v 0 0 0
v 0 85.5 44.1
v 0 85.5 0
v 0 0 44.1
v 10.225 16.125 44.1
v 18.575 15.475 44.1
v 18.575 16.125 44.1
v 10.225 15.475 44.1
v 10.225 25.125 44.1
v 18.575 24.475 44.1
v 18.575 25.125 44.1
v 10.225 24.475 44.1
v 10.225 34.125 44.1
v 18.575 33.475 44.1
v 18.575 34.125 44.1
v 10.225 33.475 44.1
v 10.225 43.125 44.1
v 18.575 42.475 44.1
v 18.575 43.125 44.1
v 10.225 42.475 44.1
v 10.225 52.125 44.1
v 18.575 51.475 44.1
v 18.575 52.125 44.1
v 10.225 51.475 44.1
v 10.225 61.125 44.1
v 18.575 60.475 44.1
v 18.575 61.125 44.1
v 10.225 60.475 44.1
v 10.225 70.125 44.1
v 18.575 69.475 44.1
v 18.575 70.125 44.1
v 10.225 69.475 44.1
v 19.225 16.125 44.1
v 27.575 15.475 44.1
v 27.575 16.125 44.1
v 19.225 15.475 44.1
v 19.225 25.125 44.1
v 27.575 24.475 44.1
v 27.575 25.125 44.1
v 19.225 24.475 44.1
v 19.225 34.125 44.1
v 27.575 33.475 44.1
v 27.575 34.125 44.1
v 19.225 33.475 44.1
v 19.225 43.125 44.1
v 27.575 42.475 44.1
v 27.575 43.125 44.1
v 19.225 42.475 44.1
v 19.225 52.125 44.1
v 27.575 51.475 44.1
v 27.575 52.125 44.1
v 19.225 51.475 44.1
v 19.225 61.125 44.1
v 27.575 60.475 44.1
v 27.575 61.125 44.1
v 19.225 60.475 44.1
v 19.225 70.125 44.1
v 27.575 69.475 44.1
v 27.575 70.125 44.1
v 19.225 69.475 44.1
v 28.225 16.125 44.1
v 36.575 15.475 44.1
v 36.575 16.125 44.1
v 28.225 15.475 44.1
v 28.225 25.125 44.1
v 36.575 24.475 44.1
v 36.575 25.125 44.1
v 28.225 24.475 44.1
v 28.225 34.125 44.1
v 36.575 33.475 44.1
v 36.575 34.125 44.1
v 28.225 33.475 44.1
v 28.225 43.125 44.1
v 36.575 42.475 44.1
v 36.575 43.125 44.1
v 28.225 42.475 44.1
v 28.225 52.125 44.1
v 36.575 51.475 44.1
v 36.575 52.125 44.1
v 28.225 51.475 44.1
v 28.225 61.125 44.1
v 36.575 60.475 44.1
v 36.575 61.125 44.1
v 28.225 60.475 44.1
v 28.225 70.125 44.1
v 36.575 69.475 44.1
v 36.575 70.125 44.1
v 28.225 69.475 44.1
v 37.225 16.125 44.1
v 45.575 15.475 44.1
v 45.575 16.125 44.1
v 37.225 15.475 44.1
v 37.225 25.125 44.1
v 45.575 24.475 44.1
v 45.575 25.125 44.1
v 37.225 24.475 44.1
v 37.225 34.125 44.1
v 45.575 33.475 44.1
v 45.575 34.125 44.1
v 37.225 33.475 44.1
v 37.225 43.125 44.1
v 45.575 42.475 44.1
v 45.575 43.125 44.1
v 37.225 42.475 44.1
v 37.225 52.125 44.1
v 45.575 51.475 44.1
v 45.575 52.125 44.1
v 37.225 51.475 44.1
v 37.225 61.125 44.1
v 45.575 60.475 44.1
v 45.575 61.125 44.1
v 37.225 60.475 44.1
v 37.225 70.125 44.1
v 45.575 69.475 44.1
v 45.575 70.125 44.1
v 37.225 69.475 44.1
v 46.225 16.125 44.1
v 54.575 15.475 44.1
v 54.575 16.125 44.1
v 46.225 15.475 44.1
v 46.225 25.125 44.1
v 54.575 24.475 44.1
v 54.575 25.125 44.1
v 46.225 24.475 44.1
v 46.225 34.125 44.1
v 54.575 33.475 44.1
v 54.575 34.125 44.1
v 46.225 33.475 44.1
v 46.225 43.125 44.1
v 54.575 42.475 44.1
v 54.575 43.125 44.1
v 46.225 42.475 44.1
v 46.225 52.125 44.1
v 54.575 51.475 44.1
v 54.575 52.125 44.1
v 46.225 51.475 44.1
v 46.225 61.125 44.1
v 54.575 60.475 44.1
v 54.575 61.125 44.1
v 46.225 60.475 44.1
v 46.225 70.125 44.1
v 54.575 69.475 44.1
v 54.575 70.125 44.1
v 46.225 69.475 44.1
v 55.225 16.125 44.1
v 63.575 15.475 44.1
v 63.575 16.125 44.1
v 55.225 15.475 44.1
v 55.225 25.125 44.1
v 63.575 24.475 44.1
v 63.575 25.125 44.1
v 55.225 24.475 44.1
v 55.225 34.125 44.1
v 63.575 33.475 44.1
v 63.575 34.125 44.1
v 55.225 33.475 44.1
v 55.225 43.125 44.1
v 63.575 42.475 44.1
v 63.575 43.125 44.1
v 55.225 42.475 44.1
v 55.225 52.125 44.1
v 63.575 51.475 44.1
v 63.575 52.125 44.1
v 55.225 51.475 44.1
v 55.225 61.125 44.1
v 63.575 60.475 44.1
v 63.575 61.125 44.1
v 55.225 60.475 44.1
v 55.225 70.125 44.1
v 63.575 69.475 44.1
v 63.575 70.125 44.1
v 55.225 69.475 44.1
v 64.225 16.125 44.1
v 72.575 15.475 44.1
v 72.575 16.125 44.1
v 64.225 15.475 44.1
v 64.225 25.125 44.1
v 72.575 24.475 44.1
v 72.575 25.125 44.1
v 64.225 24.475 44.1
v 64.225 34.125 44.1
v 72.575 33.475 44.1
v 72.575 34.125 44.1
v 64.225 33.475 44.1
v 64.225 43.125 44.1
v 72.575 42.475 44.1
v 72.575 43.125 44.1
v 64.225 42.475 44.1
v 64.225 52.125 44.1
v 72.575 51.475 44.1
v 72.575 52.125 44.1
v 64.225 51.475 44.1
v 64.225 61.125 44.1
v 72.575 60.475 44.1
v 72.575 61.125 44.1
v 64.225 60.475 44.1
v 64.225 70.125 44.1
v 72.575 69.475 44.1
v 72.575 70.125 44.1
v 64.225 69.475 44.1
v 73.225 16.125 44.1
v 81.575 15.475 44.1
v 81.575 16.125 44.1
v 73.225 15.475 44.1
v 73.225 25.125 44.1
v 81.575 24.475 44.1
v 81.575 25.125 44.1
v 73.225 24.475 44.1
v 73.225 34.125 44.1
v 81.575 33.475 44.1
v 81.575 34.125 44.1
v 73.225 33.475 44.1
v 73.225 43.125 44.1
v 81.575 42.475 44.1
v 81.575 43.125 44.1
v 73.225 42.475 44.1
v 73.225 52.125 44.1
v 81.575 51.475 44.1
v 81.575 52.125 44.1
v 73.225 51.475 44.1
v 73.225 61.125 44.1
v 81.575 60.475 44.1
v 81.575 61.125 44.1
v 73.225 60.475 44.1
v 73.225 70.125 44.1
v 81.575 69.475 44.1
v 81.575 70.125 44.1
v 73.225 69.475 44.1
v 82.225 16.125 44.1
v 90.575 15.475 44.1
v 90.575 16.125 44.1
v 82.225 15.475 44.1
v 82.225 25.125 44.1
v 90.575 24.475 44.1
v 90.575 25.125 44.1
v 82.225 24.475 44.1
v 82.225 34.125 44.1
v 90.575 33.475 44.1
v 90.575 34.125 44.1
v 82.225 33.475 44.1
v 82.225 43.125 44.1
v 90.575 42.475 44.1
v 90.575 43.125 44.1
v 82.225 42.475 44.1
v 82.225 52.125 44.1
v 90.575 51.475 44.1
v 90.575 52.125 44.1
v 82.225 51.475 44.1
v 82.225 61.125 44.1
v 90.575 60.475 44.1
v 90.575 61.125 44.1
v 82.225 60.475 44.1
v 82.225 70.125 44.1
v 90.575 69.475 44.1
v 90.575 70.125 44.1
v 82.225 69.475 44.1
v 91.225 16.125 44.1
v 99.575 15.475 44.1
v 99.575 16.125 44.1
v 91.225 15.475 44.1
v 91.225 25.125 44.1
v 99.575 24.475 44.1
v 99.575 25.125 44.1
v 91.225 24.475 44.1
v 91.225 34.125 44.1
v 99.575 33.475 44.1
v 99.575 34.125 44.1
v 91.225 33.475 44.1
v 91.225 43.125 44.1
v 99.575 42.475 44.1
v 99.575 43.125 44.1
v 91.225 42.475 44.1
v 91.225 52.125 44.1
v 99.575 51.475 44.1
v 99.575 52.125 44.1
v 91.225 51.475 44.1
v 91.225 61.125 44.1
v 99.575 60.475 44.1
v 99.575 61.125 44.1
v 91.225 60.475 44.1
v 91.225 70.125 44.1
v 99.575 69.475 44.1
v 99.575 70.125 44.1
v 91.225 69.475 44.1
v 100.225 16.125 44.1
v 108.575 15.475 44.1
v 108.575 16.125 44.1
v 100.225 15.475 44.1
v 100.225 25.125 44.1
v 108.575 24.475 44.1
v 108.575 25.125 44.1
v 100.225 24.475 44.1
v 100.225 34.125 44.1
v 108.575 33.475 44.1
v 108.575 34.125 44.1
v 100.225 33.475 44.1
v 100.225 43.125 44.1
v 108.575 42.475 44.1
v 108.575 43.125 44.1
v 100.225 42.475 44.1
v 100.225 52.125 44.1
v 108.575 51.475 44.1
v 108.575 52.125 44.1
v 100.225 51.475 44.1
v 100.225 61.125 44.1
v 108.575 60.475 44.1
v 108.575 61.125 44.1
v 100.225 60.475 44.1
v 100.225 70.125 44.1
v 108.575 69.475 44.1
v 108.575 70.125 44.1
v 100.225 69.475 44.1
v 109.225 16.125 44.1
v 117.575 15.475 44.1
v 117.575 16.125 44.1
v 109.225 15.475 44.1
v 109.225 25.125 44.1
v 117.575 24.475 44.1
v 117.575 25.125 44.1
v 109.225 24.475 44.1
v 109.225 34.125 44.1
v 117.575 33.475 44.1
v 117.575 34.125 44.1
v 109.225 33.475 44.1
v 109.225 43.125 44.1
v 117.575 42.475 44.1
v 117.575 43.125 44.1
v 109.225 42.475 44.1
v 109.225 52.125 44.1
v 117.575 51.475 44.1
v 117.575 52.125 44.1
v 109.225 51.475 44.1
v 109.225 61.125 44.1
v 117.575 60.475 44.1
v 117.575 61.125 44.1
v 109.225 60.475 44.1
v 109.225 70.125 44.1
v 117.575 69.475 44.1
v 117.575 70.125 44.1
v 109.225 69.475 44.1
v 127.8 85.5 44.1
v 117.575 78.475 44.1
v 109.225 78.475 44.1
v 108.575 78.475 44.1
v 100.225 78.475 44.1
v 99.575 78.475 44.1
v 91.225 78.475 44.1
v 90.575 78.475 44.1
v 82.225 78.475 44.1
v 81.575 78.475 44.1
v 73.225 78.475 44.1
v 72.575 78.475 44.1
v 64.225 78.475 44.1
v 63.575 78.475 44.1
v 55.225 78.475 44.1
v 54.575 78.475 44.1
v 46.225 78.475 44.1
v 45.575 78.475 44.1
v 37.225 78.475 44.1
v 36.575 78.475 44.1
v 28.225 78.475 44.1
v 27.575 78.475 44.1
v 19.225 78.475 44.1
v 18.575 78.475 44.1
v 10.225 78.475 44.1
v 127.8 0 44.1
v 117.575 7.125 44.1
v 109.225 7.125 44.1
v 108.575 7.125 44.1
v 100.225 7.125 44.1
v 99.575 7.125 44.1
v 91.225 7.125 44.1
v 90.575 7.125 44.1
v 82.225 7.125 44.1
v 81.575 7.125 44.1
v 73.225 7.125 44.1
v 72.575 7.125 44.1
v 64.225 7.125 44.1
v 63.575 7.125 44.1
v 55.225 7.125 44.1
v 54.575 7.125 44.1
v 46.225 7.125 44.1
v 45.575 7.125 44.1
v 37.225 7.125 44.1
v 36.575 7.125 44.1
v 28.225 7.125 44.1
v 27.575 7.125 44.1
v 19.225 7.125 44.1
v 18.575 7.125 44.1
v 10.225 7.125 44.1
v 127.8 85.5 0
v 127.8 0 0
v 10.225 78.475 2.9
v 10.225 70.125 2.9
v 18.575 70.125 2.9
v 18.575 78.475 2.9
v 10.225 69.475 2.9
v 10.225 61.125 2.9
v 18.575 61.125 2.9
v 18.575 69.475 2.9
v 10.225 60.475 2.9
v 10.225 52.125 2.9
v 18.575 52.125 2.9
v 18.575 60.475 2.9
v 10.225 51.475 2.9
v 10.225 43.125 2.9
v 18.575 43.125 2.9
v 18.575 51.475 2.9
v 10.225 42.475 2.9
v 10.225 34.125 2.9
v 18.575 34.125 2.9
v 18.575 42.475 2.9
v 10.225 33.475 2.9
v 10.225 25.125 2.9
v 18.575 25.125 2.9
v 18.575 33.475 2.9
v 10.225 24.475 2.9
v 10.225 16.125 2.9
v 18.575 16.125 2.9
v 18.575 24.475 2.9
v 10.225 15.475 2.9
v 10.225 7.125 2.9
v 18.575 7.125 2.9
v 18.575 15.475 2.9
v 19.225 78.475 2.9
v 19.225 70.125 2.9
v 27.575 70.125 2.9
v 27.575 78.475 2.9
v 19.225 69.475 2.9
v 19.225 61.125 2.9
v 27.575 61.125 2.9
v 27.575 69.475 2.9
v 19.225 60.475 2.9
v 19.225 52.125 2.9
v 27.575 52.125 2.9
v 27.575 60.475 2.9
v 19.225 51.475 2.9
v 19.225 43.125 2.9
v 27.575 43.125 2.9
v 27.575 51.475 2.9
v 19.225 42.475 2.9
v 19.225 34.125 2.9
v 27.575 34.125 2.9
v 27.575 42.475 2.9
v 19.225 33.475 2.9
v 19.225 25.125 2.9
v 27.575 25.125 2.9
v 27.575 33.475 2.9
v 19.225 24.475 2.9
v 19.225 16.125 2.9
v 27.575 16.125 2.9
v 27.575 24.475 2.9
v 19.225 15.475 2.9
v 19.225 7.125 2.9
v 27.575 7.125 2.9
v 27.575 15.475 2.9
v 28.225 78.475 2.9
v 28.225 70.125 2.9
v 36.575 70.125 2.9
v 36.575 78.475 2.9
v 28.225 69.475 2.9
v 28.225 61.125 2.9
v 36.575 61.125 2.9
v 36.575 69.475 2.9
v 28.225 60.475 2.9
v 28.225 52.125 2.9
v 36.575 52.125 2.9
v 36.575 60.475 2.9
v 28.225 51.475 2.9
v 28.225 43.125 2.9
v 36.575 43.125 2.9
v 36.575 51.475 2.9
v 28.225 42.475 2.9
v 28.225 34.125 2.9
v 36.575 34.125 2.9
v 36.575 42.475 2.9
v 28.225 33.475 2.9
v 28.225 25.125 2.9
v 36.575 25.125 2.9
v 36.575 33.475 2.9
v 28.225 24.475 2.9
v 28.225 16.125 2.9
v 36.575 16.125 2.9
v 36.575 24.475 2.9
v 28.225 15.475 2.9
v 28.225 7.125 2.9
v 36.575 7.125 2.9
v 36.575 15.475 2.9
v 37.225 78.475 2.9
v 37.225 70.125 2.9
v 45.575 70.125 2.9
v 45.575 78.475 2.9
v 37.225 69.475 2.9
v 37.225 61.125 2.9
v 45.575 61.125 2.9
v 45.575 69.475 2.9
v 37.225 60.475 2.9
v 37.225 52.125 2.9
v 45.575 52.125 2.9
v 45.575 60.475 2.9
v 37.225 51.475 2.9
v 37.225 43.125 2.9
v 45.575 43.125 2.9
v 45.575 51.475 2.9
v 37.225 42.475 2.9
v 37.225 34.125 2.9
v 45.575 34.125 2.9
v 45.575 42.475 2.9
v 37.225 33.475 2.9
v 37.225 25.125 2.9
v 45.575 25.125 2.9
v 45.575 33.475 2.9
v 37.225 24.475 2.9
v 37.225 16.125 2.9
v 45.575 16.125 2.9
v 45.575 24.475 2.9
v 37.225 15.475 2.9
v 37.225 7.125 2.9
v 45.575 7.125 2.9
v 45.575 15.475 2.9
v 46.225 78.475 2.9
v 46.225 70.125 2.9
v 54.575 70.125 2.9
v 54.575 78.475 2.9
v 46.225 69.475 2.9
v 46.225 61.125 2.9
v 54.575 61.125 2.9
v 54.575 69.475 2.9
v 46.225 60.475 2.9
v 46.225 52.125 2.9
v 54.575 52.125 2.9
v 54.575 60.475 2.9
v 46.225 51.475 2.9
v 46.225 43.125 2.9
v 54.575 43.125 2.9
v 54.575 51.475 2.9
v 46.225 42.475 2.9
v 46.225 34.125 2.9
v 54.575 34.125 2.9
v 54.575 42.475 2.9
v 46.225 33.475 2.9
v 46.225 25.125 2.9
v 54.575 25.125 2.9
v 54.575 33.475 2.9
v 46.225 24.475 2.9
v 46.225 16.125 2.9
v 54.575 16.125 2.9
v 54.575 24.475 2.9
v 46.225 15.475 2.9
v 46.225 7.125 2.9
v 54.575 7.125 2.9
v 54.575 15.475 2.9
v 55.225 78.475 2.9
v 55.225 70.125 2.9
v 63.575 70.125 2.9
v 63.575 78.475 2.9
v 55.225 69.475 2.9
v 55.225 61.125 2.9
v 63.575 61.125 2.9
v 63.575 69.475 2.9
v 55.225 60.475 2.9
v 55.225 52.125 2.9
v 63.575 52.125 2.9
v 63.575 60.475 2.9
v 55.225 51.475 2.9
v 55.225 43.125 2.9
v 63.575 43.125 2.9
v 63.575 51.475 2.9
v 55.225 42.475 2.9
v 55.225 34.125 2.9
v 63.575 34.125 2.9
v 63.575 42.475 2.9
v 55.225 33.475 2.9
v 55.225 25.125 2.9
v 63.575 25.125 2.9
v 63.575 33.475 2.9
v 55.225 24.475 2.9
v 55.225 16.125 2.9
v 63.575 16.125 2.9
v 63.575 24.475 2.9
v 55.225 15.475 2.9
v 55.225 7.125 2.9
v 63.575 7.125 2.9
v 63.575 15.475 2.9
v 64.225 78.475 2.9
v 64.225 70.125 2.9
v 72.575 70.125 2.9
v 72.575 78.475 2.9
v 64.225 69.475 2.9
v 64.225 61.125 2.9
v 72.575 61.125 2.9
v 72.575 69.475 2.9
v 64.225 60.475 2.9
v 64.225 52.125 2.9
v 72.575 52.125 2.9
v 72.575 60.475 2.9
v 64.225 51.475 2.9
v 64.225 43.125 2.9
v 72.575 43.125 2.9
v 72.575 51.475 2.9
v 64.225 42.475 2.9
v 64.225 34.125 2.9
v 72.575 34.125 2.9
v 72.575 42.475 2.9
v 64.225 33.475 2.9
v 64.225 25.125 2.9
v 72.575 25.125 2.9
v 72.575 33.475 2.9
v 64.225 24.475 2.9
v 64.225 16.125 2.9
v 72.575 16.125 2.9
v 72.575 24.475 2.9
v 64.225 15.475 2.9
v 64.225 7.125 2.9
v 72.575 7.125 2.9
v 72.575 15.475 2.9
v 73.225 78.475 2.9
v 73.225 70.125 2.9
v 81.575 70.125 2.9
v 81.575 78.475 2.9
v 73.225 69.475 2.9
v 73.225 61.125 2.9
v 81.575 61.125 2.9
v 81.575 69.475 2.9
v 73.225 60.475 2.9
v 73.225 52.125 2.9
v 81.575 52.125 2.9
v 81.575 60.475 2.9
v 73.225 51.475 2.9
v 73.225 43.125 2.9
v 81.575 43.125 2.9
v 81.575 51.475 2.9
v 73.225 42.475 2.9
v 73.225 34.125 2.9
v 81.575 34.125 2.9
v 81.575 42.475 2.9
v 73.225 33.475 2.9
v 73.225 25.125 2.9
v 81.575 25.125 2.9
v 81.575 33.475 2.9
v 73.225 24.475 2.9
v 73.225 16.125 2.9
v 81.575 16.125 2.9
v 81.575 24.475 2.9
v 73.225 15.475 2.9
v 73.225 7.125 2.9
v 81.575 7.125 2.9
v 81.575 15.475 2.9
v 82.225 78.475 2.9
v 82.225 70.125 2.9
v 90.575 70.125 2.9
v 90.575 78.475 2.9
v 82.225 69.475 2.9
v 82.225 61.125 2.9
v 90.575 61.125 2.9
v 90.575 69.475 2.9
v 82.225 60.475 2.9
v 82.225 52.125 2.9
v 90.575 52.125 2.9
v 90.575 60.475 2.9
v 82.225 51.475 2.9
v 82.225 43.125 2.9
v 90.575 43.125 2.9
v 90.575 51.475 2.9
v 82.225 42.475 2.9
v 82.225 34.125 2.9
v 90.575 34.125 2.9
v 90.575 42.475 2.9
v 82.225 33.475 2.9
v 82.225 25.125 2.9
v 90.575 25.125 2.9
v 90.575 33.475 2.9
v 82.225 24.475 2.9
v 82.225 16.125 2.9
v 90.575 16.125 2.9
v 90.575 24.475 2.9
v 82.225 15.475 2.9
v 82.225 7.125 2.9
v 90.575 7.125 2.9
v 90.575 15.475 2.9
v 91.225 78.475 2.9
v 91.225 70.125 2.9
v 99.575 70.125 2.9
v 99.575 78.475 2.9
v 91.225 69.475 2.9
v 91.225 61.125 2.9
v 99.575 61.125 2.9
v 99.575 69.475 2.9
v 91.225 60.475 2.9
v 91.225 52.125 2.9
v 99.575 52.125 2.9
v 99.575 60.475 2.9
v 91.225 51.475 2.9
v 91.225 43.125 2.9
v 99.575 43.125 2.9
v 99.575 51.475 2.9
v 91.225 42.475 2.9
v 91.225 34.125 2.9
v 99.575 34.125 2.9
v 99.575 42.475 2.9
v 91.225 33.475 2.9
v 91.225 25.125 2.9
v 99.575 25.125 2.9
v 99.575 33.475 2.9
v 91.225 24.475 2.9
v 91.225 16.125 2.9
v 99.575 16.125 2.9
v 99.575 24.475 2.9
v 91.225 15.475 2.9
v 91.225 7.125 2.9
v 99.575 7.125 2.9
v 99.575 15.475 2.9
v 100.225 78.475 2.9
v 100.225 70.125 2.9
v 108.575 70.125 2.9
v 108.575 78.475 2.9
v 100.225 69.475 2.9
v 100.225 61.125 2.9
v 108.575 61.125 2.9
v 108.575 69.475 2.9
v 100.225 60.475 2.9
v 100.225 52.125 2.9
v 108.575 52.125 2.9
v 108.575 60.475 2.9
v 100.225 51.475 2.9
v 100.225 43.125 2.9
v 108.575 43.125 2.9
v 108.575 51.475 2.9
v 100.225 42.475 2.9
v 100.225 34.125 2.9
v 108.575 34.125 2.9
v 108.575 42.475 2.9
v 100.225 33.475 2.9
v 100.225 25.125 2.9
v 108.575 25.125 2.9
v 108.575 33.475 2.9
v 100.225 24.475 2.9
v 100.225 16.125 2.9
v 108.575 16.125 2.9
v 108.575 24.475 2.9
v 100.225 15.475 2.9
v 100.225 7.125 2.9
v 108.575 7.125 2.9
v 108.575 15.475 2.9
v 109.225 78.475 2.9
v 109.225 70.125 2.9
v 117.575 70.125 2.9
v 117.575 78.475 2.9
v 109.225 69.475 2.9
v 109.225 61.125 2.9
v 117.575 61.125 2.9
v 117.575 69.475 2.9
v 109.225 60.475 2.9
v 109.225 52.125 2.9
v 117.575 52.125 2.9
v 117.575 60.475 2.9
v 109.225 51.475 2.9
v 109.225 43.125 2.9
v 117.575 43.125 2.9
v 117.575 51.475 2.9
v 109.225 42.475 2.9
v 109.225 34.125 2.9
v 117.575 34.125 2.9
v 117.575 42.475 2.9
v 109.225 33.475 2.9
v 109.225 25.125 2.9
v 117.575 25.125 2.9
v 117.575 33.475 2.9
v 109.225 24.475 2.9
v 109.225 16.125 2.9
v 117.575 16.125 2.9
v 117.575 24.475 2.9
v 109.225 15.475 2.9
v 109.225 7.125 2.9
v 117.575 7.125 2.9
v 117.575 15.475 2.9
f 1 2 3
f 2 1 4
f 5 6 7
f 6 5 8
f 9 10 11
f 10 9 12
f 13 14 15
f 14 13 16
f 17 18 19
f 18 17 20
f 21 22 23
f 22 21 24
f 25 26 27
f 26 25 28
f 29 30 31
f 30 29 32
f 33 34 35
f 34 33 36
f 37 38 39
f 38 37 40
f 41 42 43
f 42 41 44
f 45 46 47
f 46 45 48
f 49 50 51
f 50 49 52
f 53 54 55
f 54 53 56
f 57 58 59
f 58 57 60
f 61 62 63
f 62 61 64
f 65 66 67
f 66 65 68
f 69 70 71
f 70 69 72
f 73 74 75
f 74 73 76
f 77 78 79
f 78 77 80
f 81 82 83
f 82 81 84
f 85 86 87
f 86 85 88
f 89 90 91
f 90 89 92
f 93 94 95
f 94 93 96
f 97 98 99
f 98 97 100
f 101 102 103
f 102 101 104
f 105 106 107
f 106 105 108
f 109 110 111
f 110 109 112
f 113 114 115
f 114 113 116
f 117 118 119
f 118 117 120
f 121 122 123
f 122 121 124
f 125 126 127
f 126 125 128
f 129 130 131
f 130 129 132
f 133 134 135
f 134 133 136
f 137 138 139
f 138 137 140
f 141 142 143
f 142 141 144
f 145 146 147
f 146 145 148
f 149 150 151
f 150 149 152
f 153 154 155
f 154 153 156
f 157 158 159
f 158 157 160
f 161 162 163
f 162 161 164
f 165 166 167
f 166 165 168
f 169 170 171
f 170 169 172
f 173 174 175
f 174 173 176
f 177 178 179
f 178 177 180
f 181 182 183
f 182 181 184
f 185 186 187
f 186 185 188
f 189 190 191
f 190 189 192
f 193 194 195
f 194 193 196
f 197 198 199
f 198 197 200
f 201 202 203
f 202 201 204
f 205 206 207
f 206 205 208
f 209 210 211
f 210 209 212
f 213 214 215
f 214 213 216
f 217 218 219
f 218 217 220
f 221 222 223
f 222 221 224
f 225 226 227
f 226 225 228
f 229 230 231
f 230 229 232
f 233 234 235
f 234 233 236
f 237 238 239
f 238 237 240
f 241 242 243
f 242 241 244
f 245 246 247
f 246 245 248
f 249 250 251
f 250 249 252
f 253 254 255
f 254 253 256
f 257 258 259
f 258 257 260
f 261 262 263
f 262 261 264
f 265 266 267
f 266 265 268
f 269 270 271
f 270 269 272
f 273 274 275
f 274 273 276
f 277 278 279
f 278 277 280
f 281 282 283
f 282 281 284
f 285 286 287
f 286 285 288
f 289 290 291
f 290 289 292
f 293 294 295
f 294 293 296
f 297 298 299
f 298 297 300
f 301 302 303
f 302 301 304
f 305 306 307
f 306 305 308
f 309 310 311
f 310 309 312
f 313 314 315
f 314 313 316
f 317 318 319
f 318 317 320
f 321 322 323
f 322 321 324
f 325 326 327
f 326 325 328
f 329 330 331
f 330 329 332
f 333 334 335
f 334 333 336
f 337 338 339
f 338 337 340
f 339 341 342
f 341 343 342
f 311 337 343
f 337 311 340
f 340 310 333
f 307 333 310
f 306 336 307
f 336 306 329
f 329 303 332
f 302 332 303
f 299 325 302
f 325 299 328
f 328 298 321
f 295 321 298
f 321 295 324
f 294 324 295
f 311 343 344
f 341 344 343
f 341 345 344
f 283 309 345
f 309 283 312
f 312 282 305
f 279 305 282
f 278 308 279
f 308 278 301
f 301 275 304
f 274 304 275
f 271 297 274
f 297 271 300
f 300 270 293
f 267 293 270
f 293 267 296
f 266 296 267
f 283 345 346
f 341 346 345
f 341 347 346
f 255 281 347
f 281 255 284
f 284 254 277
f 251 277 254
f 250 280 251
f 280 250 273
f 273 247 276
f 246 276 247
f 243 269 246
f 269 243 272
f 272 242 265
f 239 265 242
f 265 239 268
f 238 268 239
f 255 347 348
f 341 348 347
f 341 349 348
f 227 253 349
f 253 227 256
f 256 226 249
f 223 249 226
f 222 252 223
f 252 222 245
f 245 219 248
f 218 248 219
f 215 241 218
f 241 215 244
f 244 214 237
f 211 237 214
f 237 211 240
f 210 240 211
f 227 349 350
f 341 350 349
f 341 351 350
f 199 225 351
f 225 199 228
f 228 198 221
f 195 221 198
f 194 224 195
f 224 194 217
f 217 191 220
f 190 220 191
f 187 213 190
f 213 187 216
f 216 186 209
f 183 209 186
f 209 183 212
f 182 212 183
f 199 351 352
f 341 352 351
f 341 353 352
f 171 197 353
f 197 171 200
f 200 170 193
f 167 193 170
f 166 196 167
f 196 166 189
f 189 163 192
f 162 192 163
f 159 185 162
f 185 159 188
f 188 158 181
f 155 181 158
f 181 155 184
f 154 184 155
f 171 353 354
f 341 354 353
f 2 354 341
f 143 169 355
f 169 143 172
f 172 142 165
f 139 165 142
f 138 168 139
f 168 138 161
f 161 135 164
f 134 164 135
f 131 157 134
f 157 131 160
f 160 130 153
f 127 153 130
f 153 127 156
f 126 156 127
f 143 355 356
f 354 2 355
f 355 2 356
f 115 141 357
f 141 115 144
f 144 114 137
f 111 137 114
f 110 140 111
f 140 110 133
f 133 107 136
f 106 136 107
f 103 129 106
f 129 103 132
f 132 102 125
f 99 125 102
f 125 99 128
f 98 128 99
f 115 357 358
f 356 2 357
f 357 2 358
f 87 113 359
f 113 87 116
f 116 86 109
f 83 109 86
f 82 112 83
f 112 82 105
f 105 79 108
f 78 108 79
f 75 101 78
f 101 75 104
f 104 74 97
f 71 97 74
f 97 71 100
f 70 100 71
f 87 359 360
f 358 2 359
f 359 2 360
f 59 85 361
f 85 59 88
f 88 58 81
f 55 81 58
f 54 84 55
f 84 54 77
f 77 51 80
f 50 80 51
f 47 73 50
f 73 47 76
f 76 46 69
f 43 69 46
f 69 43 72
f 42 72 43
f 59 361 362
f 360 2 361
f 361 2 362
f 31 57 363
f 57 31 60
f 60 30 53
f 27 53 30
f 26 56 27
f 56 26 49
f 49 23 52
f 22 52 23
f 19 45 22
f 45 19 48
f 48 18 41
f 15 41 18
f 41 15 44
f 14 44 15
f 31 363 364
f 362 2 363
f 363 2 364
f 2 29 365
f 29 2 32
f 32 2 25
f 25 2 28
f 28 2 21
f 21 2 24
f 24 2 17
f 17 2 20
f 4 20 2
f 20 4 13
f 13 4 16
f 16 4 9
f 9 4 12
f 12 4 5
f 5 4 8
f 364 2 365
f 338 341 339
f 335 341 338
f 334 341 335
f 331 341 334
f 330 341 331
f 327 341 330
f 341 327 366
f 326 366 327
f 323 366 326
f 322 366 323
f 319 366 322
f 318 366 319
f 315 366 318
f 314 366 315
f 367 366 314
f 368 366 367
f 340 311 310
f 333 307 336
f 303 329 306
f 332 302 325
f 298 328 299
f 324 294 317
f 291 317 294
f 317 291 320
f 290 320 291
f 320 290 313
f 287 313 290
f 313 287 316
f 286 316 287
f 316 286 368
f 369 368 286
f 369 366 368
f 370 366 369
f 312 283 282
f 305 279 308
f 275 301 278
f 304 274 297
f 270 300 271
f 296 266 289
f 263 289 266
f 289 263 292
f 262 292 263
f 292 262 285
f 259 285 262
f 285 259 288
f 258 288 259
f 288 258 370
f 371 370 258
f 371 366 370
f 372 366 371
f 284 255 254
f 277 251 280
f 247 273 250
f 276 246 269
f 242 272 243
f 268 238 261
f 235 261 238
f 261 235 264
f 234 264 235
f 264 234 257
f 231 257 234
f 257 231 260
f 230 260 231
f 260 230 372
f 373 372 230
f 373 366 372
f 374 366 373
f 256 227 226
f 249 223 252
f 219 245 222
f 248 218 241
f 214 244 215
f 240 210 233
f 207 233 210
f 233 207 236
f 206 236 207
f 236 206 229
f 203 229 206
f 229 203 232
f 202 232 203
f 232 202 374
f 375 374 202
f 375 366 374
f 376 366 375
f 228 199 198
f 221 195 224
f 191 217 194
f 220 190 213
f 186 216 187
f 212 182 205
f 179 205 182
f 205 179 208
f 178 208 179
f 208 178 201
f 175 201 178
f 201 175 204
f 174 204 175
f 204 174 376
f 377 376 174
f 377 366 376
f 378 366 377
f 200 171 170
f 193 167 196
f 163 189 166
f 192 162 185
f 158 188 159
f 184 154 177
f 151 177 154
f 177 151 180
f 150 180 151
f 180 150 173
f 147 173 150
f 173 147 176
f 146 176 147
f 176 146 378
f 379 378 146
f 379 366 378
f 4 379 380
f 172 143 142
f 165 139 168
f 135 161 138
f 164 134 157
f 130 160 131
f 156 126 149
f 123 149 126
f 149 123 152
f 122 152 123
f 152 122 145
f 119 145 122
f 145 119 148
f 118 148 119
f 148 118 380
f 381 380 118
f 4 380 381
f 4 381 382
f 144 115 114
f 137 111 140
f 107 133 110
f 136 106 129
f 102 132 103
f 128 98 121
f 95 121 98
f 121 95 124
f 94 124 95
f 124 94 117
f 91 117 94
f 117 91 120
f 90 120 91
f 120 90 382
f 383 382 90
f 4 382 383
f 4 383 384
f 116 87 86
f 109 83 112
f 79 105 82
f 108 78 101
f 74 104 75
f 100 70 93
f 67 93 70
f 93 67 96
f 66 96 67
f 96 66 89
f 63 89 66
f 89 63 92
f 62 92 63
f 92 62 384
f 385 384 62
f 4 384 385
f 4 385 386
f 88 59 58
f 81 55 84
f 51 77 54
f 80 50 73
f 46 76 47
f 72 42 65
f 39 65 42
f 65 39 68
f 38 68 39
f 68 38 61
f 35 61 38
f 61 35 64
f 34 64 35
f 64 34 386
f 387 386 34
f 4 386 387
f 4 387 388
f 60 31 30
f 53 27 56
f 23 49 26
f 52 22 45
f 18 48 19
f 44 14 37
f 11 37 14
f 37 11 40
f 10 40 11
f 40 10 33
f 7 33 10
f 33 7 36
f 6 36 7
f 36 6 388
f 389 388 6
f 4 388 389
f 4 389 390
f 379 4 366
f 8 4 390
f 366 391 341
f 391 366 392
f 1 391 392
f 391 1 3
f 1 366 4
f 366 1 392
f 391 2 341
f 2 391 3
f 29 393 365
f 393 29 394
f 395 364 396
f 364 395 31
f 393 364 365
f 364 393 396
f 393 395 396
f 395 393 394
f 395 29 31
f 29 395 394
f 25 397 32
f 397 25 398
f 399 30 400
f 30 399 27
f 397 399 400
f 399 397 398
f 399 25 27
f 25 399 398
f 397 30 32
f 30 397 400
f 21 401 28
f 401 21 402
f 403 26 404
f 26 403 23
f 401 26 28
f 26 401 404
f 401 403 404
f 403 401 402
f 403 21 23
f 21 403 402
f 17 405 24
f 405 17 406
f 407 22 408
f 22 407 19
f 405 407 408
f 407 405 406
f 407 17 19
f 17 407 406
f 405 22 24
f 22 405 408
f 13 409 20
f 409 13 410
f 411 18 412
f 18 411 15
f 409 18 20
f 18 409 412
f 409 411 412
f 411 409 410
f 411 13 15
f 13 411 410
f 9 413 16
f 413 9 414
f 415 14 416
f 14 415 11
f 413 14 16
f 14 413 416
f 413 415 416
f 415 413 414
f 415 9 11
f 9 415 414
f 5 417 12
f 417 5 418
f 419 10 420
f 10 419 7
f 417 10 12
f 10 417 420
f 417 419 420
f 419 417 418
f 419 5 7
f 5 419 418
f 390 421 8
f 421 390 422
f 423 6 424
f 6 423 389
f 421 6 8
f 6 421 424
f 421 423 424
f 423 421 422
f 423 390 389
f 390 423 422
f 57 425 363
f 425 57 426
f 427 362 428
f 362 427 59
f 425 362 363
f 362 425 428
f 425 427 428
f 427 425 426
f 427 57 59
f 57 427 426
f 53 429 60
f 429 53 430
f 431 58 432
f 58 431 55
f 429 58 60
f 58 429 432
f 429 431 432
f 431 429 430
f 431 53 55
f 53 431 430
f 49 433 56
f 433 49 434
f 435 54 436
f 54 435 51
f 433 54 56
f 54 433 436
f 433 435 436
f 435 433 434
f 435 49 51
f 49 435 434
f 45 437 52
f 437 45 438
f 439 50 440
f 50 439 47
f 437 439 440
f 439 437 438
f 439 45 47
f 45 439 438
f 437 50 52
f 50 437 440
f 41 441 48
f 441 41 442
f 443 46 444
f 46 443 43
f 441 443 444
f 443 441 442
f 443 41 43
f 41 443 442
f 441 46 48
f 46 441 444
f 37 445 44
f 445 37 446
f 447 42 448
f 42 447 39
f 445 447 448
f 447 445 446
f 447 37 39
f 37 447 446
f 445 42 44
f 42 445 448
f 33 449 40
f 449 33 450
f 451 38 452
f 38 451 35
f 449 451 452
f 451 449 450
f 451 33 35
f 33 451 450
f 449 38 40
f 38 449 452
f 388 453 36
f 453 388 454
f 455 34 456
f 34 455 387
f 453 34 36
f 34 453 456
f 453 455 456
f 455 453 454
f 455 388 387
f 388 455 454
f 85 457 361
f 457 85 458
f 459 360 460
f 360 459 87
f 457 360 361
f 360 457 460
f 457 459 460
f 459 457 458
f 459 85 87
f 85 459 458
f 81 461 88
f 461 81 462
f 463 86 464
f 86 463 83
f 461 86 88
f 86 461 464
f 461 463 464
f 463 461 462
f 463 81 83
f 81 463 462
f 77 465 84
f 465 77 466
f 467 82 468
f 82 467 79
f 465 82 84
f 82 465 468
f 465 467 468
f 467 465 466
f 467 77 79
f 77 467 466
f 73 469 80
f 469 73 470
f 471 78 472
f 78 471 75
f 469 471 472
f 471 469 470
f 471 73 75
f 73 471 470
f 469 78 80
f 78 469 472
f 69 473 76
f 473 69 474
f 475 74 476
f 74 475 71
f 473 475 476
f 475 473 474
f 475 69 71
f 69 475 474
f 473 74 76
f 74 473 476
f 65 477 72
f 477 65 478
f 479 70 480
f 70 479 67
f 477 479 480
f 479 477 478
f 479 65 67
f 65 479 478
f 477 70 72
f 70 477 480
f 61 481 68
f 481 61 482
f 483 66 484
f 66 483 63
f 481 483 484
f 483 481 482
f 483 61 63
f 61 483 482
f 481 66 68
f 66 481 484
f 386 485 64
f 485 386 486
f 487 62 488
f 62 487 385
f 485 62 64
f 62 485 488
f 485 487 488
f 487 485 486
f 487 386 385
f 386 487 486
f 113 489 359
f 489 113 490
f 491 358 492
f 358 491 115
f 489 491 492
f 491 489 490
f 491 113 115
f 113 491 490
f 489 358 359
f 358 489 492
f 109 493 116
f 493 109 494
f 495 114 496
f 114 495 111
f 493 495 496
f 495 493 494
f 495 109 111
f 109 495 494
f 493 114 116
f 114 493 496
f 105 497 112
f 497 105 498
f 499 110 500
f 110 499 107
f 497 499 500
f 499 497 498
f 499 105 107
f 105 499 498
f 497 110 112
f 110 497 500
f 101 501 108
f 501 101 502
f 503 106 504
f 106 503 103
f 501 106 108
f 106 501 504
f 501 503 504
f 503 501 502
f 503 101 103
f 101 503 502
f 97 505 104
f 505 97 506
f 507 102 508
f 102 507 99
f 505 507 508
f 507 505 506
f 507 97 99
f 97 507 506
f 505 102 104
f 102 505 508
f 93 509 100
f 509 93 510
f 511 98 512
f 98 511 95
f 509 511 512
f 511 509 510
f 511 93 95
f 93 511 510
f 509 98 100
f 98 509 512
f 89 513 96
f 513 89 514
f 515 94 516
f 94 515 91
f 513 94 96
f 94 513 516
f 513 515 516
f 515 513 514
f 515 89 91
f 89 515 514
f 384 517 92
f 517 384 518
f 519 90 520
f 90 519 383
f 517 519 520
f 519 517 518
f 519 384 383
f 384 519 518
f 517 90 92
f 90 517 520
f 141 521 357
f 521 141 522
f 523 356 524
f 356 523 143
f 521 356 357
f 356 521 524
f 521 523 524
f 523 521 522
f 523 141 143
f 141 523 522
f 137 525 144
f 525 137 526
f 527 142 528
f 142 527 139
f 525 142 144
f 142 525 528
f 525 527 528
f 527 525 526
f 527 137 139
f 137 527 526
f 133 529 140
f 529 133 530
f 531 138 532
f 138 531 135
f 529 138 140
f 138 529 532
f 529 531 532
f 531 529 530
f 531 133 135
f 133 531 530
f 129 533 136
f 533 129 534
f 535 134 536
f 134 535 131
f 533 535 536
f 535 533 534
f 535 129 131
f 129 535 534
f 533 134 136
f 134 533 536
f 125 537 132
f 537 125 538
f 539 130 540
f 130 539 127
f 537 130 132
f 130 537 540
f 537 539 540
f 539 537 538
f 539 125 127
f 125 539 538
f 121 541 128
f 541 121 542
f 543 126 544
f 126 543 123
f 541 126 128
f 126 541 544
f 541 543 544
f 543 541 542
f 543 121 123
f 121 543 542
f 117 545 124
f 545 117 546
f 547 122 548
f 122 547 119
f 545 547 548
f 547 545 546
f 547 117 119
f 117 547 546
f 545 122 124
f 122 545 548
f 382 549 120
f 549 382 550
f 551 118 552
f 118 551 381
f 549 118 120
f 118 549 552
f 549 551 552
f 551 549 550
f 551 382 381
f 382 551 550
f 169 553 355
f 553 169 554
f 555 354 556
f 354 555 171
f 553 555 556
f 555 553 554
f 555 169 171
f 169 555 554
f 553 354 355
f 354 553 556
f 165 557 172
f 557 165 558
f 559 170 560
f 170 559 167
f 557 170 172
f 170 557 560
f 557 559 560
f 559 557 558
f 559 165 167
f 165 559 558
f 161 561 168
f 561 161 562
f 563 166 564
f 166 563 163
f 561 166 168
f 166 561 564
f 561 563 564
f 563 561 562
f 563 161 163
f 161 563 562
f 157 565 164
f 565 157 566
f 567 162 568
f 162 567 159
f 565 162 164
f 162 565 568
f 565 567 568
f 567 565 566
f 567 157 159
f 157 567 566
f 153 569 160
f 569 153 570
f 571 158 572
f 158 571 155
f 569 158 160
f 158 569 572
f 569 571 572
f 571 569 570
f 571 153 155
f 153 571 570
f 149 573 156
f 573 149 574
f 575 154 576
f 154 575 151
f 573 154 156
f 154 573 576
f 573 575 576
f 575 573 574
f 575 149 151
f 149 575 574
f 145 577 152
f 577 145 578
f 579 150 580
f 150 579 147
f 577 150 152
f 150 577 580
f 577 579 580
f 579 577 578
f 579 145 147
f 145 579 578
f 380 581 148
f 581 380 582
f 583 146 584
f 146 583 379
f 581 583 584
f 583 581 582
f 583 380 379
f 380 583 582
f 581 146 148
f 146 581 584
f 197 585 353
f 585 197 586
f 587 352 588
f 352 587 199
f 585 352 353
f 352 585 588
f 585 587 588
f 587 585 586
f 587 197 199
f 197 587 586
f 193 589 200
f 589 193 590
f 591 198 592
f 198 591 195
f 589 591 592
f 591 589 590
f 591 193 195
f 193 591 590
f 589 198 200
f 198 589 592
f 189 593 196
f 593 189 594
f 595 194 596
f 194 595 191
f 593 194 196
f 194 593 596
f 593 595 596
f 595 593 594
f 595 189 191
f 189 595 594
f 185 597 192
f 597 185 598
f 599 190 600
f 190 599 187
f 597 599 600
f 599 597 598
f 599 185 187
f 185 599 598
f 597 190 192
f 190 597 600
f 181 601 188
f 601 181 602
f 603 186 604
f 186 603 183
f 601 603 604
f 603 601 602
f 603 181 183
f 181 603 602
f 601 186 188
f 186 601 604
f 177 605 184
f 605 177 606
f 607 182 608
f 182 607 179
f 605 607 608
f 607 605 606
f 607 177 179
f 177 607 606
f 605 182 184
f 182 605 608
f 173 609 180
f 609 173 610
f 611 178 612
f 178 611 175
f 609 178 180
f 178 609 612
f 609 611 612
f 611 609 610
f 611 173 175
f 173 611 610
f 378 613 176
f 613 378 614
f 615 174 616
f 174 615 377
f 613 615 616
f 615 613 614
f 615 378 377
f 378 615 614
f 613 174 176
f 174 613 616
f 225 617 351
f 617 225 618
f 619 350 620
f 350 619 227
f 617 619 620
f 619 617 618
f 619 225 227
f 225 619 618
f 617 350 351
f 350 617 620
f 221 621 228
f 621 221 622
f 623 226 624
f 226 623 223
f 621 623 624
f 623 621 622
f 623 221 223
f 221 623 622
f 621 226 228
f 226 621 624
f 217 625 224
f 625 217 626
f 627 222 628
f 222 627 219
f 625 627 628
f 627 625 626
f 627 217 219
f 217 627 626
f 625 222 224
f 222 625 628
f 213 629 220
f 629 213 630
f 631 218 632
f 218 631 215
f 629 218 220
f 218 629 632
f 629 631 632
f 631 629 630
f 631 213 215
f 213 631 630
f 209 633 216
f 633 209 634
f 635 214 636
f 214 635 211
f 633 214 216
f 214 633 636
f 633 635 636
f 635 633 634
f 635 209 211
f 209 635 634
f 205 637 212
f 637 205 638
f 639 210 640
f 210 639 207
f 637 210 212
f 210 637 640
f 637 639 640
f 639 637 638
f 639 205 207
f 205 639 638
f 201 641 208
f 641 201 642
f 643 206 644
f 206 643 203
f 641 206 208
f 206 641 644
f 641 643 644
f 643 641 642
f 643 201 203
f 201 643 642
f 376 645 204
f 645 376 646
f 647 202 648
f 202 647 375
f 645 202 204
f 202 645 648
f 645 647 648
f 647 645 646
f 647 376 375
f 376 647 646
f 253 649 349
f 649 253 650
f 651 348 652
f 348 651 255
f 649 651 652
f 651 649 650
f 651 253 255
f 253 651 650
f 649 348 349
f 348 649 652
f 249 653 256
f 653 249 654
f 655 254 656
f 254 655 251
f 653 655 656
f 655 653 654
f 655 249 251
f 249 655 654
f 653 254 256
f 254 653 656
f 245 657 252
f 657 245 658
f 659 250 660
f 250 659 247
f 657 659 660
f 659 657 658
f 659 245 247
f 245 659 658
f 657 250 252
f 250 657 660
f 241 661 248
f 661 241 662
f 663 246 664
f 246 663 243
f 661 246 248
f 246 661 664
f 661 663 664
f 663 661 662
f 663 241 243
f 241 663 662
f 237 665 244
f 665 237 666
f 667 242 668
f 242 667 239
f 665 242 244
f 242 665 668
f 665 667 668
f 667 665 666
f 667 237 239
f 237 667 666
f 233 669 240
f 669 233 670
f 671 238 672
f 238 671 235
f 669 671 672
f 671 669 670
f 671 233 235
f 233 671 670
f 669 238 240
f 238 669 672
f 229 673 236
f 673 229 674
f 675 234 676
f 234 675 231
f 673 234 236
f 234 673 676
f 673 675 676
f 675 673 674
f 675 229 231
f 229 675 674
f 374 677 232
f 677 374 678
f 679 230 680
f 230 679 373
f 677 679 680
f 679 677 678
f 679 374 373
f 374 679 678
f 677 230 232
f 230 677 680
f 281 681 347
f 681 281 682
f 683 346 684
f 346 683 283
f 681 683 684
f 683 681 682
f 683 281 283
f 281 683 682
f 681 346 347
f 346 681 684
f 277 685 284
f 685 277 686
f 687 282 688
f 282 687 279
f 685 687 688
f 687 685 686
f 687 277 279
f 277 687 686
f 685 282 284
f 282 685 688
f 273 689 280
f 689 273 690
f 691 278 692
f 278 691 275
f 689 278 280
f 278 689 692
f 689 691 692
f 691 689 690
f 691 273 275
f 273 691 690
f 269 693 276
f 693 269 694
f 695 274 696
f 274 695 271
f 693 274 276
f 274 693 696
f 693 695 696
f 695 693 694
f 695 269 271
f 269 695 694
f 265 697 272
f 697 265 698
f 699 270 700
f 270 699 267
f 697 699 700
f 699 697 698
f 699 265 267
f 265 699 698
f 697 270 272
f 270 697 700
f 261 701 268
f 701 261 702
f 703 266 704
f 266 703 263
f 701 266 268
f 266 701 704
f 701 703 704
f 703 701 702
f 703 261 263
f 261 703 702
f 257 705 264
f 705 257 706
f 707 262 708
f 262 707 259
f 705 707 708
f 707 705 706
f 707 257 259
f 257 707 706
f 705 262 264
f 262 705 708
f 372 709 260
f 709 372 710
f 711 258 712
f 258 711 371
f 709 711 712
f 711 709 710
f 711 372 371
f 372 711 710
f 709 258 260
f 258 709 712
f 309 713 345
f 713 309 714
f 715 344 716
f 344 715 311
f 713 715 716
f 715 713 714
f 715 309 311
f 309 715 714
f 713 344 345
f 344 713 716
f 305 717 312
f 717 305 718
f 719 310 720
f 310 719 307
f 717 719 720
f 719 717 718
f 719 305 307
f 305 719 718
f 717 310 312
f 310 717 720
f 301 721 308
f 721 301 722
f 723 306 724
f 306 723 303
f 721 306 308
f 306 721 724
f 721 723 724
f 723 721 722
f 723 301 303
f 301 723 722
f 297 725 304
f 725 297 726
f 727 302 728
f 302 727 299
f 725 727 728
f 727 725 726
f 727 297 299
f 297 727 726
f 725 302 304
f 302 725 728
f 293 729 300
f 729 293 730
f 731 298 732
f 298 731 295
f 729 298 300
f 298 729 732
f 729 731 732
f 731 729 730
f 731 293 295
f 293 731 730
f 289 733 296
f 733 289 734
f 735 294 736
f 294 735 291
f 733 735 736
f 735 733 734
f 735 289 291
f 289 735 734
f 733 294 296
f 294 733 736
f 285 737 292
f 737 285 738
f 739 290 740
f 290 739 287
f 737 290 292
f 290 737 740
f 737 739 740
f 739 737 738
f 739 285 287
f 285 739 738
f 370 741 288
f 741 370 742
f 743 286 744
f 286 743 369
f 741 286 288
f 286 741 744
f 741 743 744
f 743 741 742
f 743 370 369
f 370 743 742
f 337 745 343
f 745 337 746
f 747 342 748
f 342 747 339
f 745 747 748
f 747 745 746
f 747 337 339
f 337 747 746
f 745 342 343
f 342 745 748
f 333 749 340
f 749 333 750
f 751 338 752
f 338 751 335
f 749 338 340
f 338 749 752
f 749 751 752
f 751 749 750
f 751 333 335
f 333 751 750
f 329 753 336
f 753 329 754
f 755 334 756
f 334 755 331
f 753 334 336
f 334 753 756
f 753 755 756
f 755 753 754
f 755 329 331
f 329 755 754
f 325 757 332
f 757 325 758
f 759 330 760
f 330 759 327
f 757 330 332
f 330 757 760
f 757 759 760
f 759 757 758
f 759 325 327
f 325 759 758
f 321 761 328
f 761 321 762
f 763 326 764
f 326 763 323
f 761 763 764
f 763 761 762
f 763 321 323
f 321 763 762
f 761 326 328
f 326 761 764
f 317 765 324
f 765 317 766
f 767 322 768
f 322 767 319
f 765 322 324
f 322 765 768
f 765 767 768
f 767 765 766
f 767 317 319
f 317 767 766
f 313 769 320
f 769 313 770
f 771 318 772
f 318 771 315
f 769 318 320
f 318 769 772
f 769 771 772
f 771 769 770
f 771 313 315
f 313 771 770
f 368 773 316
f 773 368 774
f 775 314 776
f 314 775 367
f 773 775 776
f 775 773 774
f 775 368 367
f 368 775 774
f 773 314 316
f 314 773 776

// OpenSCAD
// Eppendorf 96 Well Plate 2 mL
// loadName: eppendorf_96_wellplate_2000ul
// Auto-generated by labware_to_stl.py from Opentrons V2 labware definition

$fn = 8;

difference() {
    // ── Labware body ──────────────────────────────────────────────
    cube([127.8000, 85.5000, 44.1000]);

    // ── Well cutouts ──────────────────────────────────────────────
    // Well A1
    translate([10.2250, 70.1250, 2.9000])
        cube([8.3500, 8.3500, 42.2000]);
    // Well B1
    translate([10.2250, 61.1250, 2.9000])
        cube([8.3500, 8.3500, 42.2000]);
    // Well C1
    translate([10.2250, 52.1250, 2.9000])
        cube([8.3500, 8.3500, 42.2000]);
    // Well D1
    translate([10.2250, 43.1250, 2.9000])
        cube([8.3500, 8.3500, 42.2000]);
    // Well E1
    translate([10.2250, 34.1250, 2.9000])
        cube([8.3500, 8.3500, 42.2000]);
    // Well F1
    translate([10.2250, 25.1250, 2.9000])
        cube([8.3500, 8.3500, 42.2000]);
    // Well G1
    translate([10.2250, 16.1250, 2.9000])
        cube([8.3500, 8.3500, 42.2000]);
    // Well H1
    translate([10.2250, 7.1250, 2.9000])
        cube([8.3500, 8.3500, 42.2000]);
    // Well A2
    translate([19.2250, 70.1250, 2.9000])
        cube([8.3500, 8.3500, 42.2000]);
    // Well B2
    translate([19.2250, 61.1250, 2.9000])
        cube([8.3500, 8.3500, 42.2000]);
    // Well C2
    translate([19.2250, 52.1250, 2.9000])
        cube([8.3500, 8.3500, 42.2000]);
    // Well D2
    translate([19.2250, 43.1250, 2.9000])
        cube([8.3500, 8.3500, 42.2000]);
    // Well E2
    translate([19.2250, 34.1250, 2.9000])
        cube([8.3500, 8.3500, 42.2000]);
    // Well F2
    translate([19.2250, 25.1250, 2.9000])
        cube([8.3500, 8.3500, 42.2000]);
    // Well G2
    translate([19.2250, 16.1250, 2.9000])
        cube([8.3500, 8.3500, 42.2000]);
    // Well H2
    translate([19.2250, 7.1250, 2.9000])
        cube([8.3500, 8.3500, 42.2000]);
    // Well A3
    translate([28.2250, 70.1250, 2.9000])
        cube([8.3500, 8.3500, 42.2000]);
    // Well B3
    translate([28.2250, 61.1250, 2.9000])
        cube([8.3500, 8.3500, 42.2000]);
    // Well C3
    translate([28.2250, 52.1250, 2.9000])
        cube([8.3500, 8.3500, 42.2000]);
    // Well D3
    translate([28.2250, 43.1250, 2.9000])
        cube([8.3500, 8.3500, 42.2000]);
    // Well E3
    translate([28.2250, 34.1250, 2.9000])
        cube([8.3500, 8.3500, 42.2000]);
    // Well F3
    translate([28.2250, 25.1250, 2.9000])
        cube([8.3500, 8.3500, 42.2000]);
    // Well G3
    translate([28.2250, 16.1250, 2.9000])
        cube([8.3500, 8.3500, 42.2000]);
    // Well H3
    translate([28.2250, 7.1250, 2.9000])
        cube([8.3500, 8.3500, 42.2000]);
    // Well A4
    translate([37.2250, 70.1250, 2.9000])
        cube([8.3500, 8.3500, 42.2000]);
    // Well B4
    translate([37.2250, 61.1250, 2.9000])
        cube([8.3500, 8.3500, 42.2000]);
    // Well C4
    translate([37.2250, 52.1250, 2.9000])
        cube([8.3500, 8.3500, 42.2000]);
    // Well D4
    translate([37.2250, 43.1250, 2.9000])
        cube([8.3500, 8.3500, 42.2000]);
    // Well E4
    translate([37.2250, 34.1250, 2.9000])
        cube([8.3500, 8.3500, 42.2000]);
    // Well F4
    translate([37.2250, 25.1250, 2.9000])
        cube([8.3500, 8.3500, 42.2000]);
    // Well G4
    translate([37.2250, 16.1250, 2.9000])
        cube([8.3500, 8.3500, 42.2000]);
    // Well H4
    translate([37.2250, 7.1250, 2.9000])
        cube([8.3500, 8.3500, 42.2000]);
    // Well A5
    translate([46.2250, 70.1250, 2.9000])
        cube([8.3500, 8.3500, 42.2000]);
    // Well B5
    translate([46.2250, 61.1250, 2.9000])
        cube([8.3500, 8.3500, 42.2000]);
    // Well C5
    translate([46.2250, 52.1250, 2.9000])
        cube([8.3500, 8.3500, 42.2000]);
    // Well D5
    translate([46.2250, 43.1250, 2.9000])
        cube([8.3500, 8.3500, 42.2000]);
    // Well E5
    translate([46.2250, 34.1250, 2.9000])
        cube([8.3500, 8.3500, 42.2000]);
    // Well F5
    translate([46.2250, 25.1250, 2.9000])
        cube([8.3500, 8.3500, 42.2000]);
    // Well G5
    translate([46.2250, 16.1250, 2.9000])
        cube([8.3500, 8.3500, 42.2000]);
    // Well H5
    translate([46.2250, 7.1250, 2.9000])
        cube([8.3500, 8.3500, 42.2000]);
    // Well A6
    translate([55.2250, 70.1250, 2.9000])
        cube([8.3500, 8.3500, 42.2000]);
    // Well B6
    translate([55.2250, 61.1250, 2.9000])
        cube([8.3500, 8.3500, 42.2000]);
    // Well C6
    translate([55.2250, 52.1250, 2.9000])
        cube([8.3500, 8.3500, 42.2000]);
    // Well D6
    translate([55.2250, 43.1250, 2.9000])
        cube([8.3500, 8.3500, 42.2000]);
    // Well E6
    translate([55.2250, 34.1250, 2.9000])
        cube([8.3500, 8.3500, 42.2000]);
    // Well F6
    translate([55.2250, 25.1250, 2.9000])
        cube([8.3500, 8.3500, 42.2000]);
    // Well G6
    translate([55.2250, 16.1250, 2.9000])
        cube([8.3500, 8.3500, 42.2000]);
    // Well H6
    translate([55.2250, 7.1250, 2.9000])
        cube([8.3500, 8.3500, 42.2000]);
    // Well A7
    translate([64.2250, 70.1250, 2.9000])
        cube([8.3500, 8.3500, 42.2000]);
    // Well B7
    translate([64.2250, 61.1250, 2.9000])
        cube([8.3500, 8.3500, 42.2000]);
    // Well C7
    translate([64.2250, 52.1250, 2.9000])
        cube([8.3500, 8.3500, 42.2000]);
    // Well D7
    translate([64.2250, 43.1250, 2.9000])
        cube([8.3500, 8.3500, 42.2000]);
    // Well E7
    translate([64.2250, 34.1250, 2.9000])
        cube([8.3500, 8.3500, 42.2000]);
    // Well F7
    translate([64.2250, 25.1250, 2.9000])
        cube([8.3500, 8.3500, 42.2000]);
    // Well G7
    translate([64.2250, 16.1250, 2.9000])
        cube([8.3500, 8.3500, 42.2000]);
    // Well H7
    translate([64.2250, 7.1250, 2.9000])
        cube([8.3500, 8.3500, 42.2000]);
    // Well A8
    translate([73.2250, 70.1250, 2.9000])
        cube([8.3500, 8.3500, 42.2000]);
    // Well B8
    translate([73.2250, 61.1250, 2.9000])
        cube([8.3500, 8.3500, 42.2000]);
    // Well C8
    translate([73.2250, 52.1250, 2.9000])
        cube([8.3500, 8.3500, 42.2000]);
    // Well D8
    translate([73.2250, 43.1250, 2.9000])
        cube([8.3500, 8.3500, 42.2000]);
    // Well E8
    translate([73.2250, 34.1250, 2.9000])
        cube([8.3500, 8.3500, 42.2000]);
    // Well F8
    translate([73.2250, 25.1250, 2.9000])
        cube([8.3500, 8.3500, 42.2000]);
    // Well G8
    translate([73.2250, 16.1250, 2.9000])
        cube([8.3500, 8.3500, 42.2000]);
    // Well H8
    translate([73.2250, 7.1250, 2.9000])
        cube([8.3500, 8.3500, 42.2000]);
    // Well A9
    translate([82.2250, 70.1250, 2.9000])
        cube([8.3500, 8.3500, 42.2000]);
    // Well B9
    translate([82.2250, 61.1250, 2.9000])
        cube([8.3500, 8.3500, 42.2000]);
    // Well C9
    translate([82.2250, 52.1250, 2.9000])
        cube([8.3500, 8.3500, 42.2000]);
    // Well D9
    translate([82.2250, 43.1250, 2.9000])
        cube([8.3500, 8.3500, 42.2000]);
    // Well E9
    translate([82.2250, 34.1250, 2.9000])
        cube([8.3500, 8.3500, 42.2000]);
    // Well F9
    translate([82.2250, 25.1250, 2.9000])
        cube([8.3500, 8.3500, 42.2000]);
    // Well G9
    translate([82.2250, 16.1250, 2.9000])
        cube([8.3500, 8.3500, 42.2000]);
    // Well H9
    translate([82.2250, 7.1250, 2.9000])
        cube([8.3500, 8.3500, 42.2000]);
    // Well A10
    translate([91.2250, 70.1250, 2.9000])
        cube([8.3500, 8.3500, 42.2000]);
    // Well B10
    translate([91.2250, 61.1250, 2.9000])
        cube([8.3500, 8.3500, 42.2000]);
    // Well C10
    translate([91.2250, 52.1250, 2.9000])
        cube([8.3500, 8.3500, 42.2000]);
    // Well D10
    translate([91.2250, 43.1250, 2.9000])
        cube([8.3500, 8.3500, 42.2000]);
    // Well E10
    translate([91.2250, 34.1250, 2.9000])
        cube([8.3500, 8.3500, 42.2000]);
    // Well F10
    translate([91.2250, 25.1250, 2.9000])
        cube([8.3500, 8.3500, 42.2000]);
    // Well G10
    translate([91.2250, 16.1250, 2.9000])
        cube([8.3500, 8.3500, 42.2000]);
    // Well H10
    translate([91.2250, 7.1250, 2.9000])
        cube([8.3500, 8.3500, 42.2000]);
    // Well A11
    translate([100.2250, 70.1250, 2.9000])
        cube([8.3500, 8.3500, 42.2000]);
    // Well B11
    translate([100.2250, 61.1250, 2.9000])
        cube([8.3500, 8.3500, 42.2000]);
    // Well C11
    translate([100.2250, 52.1250, 2.9000])
        cube([8.3500, 8.3500, 42.2000]);
    // Well D11
    translate([100.2250, 43.1250, 2.9000])
        cube([8.3500, 8.3500, 42.2000]);
    // Well E11
    translate([100.2250, 34.1250, 2.9000])
        cube([8.3500, 8.3500, 42.2000]);
    // Well F11
    translate([100.2250, 25.1250, 2.9000])
        cube([8.3500, 8.3500, 42.2000]);
    // Well G11
    translate([100.2250, 16.1250, 2.9000])
        cube([8.3500, 8.3500, 42.2000]);
    // Well H11
    translate([100.2250, 7.1250, 2.9000])
        cube([8.3500, 8.3500, 42.2000]);
    // Well A12
    translate([109.2250, 70.1250, 2.9000])
        cube([8.3500, 8.3500, 42.2000]);
    // Well B12
    translate([109.2250, 61.1250, 2.9000])
        cube([8.3500, 8.3500, 42.2000]);
    // Well C12
    translate([109.2250, 52.1250, 2.9000])
        cube([8.3500, 8.3500, 42.2000]);
    // Well D12
    translate([109.2250, 43.1250, 2.9000])
        cube([8.3500, 8.3500, 42.2000]);
    // Well E12
    translate([109.2250, 34.1250, 2.9000])
        cube([8.3500, 8.3500, 42.2000]);
    // Well F12
    translate([109.2250, 25.1250, 2.9000])
        cube([8.3500, 8.3500, 42.2000]);
    // Well G12
    translate([109.2250, 16.1250, 2.9000])
        cube([8.3500, 8.3500, 42.2000]);
    // Well H12
    translate([109.2250, 7.1250, 2.9000])
        cube([8.3500, 8.3500, 42.2000]);
}
